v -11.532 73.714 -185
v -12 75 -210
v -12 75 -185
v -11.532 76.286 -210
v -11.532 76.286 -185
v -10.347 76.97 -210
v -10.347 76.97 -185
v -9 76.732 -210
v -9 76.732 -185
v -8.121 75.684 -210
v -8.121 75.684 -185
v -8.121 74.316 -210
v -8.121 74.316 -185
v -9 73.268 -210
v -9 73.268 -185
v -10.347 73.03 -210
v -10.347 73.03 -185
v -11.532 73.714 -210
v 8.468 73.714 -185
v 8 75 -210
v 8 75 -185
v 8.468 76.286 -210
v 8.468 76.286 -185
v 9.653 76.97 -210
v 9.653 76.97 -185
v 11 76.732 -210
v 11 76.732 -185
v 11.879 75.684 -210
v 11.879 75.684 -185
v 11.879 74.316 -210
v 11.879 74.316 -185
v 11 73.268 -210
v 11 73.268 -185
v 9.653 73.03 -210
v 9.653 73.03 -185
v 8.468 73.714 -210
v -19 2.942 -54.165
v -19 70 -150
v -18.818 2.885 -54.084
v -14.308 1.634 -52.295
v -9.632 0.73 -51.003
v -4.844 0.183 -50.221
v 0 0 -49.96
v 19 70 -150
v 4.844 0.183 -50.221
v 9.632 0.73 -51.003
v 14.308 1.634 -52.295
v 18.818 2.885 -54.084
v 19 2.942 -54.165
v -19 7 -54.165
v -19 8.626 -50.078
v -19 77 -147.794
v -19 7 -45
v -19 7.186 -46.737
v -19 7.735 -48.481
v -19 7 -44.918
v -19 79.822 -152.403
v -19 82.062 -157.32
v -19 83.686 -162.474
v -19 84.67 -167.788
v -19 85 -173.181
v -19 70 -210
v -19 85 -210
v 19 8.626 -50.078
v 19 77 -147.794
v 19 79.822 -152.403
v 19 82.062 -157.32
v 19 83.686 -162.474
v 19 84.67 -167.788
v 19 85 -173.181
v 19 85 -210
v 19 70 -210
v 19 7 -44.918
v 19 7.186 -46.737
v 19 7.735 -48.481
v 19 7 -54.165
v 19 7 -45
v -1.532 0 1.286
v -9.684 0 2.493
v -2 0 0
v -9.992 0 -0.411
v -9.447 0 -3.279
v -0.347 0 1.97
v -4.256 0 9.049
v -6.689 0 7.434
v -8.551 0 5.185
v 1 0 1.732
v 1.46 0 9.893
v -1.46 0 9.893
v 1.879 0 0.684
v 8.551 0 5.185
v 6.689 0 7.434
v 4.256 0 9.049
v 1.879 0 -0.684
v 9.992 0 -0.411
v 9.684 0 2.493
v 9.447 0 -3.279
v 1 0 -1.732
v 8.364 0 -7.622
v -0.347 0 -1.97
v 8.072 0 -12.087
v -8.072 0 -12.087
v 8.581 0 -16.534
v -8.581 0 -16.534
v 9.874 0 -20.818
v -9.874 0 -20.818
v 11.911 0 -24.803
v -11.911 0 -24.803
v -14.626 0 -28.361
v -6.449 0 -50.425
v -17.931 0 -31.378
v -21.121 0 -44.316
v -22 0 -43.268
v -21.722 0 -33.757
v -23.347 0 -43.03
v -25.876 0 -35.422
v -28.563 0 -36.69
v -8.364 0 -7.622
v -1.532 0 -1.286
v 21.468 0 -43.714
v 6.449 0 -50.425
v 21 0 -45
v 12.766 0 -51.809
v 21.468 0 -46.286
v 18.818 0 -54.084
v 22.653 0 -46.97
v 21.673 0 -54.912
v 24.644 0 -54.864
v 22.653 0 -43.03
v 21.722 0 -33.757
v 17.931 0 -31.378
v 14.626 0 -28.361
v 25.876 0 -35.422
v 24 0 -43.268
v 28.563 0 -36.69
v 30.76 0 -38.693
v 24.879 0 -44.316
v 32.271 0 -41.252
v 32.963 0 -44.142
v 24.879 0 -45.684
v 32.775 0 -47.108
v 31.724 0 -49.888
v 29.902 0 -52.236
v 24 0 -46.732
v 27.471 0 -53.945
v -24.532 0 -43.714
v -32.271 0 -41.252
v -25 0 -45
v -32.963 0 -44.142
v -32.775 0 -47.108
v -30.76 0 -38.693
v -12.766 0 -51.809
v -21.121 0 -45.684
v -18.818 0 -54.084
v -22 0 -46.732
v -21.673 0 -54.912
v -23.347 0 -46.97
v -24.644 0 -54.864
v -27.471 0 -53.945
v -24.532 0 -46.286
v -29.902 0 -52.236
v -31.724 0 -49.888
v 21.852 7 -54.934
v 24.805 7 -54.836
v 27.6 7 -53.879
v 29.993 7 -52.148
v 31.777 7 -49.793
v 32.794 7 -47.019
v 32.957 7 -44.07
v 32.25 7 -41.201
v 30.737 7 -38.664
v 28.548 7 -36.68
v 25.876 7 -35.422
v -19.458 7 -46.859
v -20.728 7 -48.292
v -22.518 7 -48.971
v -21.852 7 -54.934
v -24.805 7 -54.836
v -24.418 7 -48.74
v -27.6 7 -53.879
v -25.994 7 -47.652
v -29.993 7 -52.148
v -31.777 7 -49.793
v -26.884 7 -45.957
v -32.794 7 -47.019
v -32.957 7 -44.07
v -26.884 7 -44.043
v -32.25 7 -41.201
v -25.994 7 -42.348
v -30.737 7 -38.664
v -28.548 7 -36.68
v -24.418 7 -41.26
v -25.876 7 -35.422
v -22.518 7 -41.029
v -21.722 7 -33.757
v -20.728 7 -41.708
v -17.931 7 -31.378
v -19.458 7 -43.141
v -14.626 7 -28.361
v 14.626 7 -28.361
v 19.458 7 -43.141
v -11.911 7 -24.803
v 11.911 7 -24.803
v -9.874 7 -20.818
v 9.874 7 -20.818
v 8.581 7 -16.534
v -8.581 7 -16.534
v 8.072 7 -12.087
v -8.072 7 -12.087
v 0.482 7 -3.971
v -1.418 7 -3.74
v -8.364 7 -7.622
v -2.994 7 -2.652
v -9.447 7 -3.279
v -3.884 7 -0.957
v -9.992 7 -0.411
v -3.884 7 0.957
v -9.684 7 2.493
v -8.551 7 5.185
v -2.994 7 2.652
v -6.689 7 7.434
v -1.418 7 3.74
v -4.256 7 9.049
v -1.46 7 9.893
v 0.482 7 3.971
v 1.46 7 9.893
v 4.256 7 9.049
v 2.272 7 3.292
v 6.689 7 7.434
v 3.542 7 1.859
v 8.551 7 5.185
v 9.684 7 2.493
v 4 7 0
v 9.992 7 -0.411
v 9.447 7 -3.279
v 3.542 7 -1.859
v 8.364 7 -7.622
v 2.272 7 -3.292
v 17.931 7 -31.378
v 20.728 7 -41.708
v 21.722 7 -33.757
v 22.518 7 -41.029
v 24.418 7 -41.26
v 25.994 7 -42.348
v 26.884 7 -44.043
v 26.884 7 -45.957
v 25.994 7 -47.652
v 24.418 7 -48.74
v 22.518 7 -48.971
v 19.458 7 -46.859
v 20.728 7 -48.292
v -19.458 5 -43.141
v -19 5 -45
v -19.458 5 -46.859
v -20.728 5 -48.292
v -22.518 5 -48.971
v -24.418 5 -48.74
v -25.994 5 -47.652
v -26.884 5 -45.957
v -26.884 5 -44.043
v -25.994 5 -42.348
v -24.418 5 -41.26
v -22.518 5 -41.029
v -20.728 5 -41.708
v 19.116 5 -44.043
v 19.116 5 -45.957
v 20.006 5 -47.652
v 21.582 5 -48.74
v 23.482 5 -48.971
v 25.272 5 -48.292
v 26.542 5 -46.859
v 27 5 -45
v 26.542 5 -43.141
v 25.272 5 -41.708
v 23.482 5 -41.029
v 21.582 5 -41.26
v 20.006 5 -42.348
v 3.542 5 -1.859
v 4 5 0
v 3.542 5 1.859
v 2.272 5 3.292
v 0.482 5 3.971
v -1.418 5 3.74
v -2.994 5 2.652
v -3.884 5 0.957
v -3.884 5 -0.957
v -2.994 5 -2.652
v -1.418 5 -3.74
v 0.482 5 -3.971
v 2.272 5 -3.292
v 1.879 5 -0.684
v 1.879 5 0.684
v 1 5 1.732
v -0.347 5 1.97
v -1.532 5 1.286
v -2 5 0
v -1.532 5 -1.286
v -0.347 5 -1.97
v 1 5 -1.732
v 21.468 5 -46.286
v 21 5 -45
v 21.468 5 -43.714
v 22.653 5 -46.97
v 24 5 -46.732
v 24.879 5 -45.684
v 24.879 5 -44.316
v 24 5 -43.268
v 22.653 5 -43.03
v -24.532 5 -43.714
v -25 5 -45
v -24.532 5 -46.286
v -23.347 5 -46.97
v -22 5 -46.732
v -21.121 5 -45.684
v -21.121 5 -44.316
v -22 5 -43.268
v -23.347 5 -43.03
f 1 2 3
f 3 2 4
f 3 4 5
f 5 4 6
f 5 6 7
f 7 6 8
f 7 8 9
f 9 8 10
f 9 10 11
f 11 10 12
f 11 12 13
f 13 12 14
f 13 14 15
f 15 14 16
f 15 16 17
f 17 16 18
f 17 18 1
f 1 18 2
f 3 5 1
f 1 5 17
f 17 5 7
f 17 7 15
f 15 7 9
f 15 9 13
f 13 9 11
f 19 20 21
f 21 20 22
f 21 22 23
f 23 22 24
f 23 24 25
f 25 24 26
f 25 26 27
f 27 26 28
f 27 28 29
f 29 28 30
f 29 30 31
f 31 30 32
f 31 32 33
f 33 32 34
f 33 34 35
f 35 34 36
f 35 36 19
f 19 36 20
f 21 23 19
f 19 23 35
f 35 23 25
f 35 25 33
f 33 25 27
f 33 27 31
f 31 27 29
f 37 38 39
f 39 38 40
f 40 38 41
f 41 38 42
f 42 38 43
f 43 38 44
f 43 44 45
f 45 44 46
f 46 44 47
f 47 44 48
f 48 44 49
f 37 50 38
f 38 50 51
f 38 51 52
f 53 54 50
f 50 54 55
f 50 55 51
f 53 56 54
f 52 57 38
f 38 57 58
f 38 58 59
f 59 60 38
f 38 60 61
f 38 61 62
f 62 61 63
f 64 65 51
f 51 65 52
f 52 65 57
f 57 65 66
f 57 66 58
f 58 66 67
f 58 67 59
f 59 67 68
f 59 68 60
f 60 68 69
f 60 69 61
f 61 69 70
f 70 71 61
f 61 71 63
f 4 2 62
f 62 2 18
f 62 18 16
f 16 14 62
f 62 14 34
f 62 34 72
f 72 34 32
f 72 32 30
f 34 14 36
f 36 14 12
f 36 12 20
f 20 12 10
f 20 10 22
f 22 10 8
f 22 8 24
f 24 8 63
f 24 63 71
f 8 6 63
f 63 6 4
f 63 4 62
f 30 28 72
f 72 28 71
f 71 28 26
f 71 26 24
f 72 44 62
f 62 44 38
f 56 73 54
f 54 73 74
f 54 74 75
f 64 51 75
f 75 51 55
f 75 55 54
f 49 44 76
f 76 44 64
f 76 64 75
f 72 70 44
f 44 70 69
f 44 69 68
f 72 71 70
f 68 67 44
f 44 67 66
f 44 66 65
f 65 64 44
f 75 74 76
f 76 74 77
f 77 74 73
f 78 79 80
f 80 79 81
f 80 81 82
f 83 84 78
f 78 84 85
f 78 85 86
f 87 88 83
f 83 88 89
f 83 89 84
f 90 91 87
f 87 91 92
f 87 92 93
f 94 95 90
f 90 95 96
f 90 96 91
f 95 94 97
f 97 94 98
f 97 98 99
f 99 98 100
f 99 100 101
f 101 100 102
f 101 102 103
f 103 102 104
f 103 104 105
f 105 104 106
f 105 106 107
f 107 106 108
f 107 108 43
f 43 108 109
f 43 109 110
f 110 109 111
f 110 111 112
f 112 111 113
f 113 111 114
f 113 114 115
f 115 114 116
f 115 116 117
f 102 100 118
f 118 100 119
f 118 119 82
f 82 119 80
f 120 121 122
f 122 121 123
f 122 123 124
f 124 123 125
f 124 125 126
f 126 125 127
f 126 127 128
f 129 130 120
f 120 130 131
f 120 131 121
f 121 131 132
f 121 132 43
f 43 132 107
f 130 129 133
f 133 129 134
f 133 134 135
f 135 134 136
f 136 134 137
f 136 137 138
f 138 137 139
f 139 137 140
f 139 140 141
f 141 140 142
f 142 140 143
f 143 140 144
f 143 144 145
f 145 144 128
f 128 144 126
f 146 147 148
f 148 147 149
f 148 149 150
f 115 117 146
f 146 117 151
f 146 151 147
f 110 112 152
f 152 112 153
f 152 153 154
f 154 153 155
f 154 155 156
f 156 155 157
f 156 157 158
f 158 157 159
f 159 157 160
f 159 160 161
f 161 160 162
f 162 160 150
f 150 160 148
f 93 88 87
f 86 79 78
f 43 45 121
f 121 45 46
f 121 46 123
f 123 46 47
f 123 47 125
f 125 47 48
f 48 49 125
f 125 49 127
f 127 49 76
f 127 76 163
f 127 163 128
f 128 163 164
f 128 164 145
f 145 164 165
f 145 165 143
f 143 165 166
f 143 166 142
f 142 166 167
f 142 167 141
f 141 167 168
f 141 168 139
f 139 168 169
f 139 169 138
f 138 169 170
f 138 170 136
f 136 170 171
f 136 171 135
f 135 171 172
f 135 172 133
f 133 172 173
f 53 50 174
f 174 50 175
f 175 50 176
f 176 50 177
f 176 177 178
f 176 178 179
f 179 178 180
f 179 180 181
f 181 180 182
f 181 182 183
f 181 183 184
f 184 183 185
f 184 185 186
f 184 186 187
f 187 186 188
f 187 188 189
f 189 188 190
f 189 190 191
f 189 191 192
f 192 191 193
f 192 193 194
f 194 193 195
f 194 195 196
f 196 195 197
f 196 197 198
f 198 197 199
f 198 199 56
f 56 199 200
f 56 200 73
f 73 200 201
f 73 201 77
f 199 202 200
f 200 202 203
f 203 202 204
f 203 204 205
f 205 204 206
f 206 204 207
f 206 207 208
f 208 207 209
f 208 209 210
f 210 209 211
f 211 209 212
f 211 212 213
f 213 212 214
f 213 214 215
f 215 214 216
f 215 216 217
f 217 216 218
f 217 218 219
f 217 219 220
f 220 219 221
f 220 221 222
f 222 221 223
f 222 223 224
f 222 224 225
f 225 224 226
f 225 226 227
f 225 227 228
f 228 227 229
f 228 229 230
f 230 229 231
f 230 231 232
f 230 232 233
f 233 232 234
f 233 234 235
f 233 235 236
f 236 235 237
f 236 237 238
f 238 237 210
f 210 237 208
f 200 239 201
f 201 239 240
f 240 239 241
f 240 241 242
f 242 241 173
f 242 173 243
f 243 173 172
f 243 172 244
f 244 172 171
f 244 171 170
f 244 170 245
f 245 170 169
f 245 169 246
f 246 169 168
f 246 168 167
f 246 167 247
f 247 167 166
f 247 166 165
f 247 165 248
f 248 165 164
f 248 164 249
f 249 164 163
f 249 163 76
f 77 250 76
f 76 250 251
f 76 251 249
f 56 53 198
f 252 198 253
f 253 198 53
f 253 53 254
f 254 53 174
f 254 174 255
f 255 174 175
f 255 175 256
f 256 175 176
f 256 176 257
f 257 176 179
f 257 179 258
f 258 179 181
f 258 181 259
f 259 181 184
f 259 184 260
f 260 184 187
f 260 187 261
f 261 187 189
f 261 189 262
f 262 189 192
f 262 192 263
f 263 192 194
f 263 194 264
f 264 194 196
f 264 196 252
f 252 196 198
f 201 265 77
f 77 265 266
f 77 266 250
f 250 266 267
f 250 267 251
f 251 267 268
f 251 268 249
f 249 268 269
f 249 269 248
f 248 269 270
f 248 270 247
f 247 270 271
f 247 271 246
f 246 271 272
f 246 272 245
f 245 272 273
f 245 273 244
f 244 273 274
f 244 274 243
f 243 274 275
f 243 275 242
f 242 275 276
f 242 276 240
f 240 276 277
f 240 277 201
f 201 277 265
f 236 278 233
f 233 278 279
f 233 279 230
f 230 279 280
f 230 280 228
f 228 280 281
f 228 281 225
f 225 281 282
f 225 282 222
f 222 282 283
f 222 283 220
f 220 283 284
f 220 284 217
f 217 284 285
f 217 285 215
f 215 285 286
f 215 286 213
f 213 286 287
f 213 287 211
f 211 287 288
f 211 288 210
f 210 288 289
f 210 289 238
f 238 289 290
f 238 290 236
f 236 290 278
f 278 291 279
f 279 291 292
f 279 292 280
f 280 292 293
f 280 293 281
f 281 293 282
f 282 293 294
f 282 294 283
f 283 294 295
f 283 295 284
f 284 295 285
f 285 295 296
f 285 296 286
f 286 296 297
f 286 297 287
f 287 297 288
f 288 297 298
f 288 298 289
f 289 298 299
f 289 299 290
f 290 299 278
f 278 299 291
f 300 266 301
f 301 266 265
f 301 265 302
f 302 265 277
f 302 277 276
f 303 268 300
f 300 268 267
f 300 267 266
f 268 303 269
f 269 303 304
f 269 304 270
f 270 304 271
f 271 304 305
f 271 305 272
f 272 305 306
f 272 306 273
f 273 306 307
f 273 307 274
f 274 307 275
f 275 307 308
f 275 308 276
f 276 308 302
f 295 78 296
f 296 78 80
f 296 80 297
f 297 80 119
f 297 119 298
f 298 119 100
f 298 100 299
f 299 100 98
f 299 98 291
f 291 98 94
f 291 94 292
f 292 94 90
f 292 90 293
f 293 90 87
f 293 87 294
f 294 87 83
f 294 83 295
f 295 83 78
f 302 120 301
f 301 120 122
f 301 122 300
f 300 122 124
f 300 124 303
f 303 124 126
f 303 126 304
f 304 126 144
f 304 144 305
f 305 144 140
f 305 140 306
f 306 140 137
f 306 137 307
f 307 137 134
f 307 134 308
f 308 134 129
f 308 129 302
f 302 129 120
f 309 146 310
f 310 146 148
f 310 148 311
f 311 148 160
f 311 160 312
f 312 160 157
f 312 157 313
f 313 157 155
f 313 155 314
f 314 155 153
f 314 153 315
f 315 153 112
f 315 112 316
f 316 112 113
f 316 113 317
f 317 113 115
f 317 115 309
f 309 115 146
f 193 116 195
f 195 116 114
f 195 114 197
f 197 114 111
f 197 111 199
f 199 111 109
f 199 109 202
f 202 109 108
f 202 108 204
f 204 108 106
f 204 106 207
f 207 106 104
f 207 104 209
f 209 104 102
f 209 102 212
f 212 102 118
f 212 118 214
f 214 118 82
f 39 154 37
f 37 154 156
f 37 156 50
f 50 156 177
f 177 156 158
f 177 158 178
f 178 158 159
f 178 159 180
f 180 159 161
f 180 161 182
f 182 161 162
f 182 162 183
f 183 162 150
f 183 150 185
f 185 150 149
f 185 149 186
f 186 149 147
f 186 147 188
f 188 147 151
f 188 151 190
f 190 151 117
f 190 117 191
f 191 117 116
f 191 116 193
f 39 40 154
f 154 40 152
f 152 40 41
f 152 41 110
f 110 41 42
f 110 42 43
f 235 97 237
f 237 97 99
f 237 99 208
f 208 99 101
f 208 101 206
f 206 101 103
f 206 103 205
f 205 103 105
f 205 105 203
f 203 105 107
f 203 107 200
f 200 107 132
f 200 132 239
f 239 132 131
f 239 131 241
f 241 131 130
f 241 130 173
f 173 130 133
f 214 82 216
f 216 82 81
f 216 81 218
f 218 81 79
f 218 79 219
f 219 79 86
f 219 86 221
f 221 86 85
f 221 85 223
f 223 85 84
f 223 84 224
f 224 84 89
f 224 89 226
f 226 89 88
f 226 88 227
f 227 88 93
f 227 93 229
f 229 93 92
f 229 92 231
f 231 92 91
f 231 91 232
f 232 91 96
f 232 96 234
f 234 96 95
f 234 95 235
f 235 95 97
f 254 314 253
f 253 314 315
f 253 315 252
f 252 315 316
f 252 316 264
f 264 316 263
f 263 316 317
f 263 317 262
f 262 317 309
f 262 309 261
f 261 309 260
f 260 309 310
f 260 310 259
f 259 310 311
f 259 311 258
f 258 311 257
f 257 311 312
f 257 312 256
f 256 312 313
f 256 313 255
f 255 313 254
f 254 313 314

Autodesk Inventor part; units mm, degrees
ref_plane "YZ Plane" through (0, 0, 0) normal (1, 0, 0) x (0, 1, 0)
ref_plane "XZ Plane" through (0, 0, 0) normal (0, 1, 0) x (-1, 0, 0)
ref_plane "XY Plane" through (0, 0, 0) normal (0, 0, 1) x (1, 0, 0)
sketch "스케치1" plane through (0, 0, 0) normal (0, 1, 0) x (-1, 0, 0)
  circle A0 centre (0, 0) radius 2
  line L0 (0, 0) -> (0, -45)
  line L1 (23, -45) -> (-23, -45)
  circle A1 centre (23, -45) radius 2
  circle A2 centre (-23, -45) radius 2
  circle A3 centre (23, -45) radius 10
  circle A4 centre (-23, -45) radius 10
  circle A5 centre (0, 0) radius 10
  arc A6 (9.447, -3.2795) -> (25.8755, -35.4224) centre (33.0643, -11.4782) ccw
  line L2 (0, -115.952) -> (0, 30.992) projected
  arc A7 (-25.8755, -35.4224) -> (-9.447, -3.2795) centre (-33.0643, -11.4782) ccw
  arc A8 (18.8182, -54.0836) -> (-18.8182, -54.0836) centre (0, -94.96) ccw
  point P0 (-9.447, -3.2795)
  point P1 (-25.8755, -35.4224)
  dimension "d6" = 20
  dimension "d7" = 20
  dimension "d0" = 4
  dimension "d1" = 45
  dimension "d2" = 46
  dimension "d3" = 4
  dimension "d4" = 4
  dimension "d5" = 20
  dimension "d8" = 25
  dimension "d9" = 45
extrude "돌출1" add sketch "스케치1" along normal blind 5 contours A0 L2 A5 L0 | A0 L0 A5 L2 | A5 A6 A3 L1 L0 | L0 L1 A4 A7 A5 | L2 A8 A4 L1 | L1 A3 A8 L2 | A4 | A3
sketch "스케치2" plane through (0, 5, 0) normal (0, 1, 0) x (1, 0, 0)
  arc A0 (-9.447, 3.2795) -> (9.447, 3.2795) centre (0, 0) ccw projected
  arc A1 (25.8755, 35.4224) -> (9.447, 3.2795) centre (33.0643, 11.4782) ccw projected
  arc A2 (25.8755, 35.4224) -> (18.8182, 54.0836) centre (23, 45) ccw projected
  arc A3 (-18.8182, 54.0836) -> (18.8182, 54.0836) centre (0, 94.96) ccw projected
  arc A4 (-18.8182, 54.0836) -> (-25.8755, 35.4224) centre (-23, 45) ccw projected
  arc A5 (-9.447, 3.2795) -> (-25.8755, 35.4224) centre (-33.0643, 11.4782) ccw projected
  circle A6 centre (-23, 45) radius 2 projected
  circle A7 centre (23, 45) radius 2 projected
  circle A8 centre (0, 0) radius 2 projected
  circle A9 centre (-23, 45) radius 4
  circle A10 centre (23, 45) radius 4
  circle A11 centre (0, 0) radius 4
  dimension "d12" = 8
  dimension "d13" = 8
  dimension "d14" = 8
extrude "돌출2" add sketch "스케치2" along normal blind 2 contours A5 A4 A3 A2 A1 A0
sketch "스케치7" plane through (0, 0, 0) normal (1, 0, 0) x (0, 1, 0)
  line L0 (5, -43) -> (5, -47) projected
  line L1 (0, -43) -> (0, -47) projected
  line L2 (7, -41) -> (7, -49) projected
  line L3 (5, -49) -> (5, -41) projected
  line L4 (0, -45) -> (7, -45)
  line L5 (7, -41) -> (7, -49) projected
  line L6 (7, -45) -> (0, -45)
  line L7 (7, -55) -> (7, -35.4224) projected
  line L8 (0, -49.96) -> (0, -54.0836) projected
  line L9 (0, -45) -> (0, -49.96)
  line L10 (0, -49.96) -> (70, -150)
  line L11 (77, -147.7942) -> (8.6259, -50.0779)
  arc A0 (7, -44.9181) -> (8.6259, -50.0779) centre (16, -44.9181) ccw
  line L12 (77, -147.7942) -> (77, -210)
  line L13 (70, -150) -> (70, -210)
  line L14 (77, -210) -> (70, -210)
  line L15 (77, -210) -> (85, -210)
  line L16 (85, -210) -> (85, -173.1814)
  arc A1 (85, -173.1814) -> (77, -147.7942) centre (40.718, -173.1814) ccw
  point P0 (0, 0)
  point P1 (7, -54.0836)
  point P2 (7, -44.9181)
  dimension "d34" = 7
  dimension "d35" = 9
  dimension "d36" = 7
  dimension "d37" = 60
  dimension "d39" = 165
  dimension "d40" = 70
  dimension "d41" = 8
extrude "돌출7" add sketch "스케치7" along normal mid plane 38
sketch "스케치8" plane through (19, 85, -210) normal (0, 0, -1) x (-1, 0, 0)
  line L0 (38, -15) -> (0, -15) projected
  line L1 (19, -15) -> (19, -8)
  line L2 (38, -8) -> (0, -8) projected
  line L3 (9, -10) -> (29, -10)
  circle A0 centre (9, -10) radius 2
  circle A1 centre (29, -10) radius 2
  line L4 (38, 0) -> (0, 0) projected
  point P0 (19, -85)
  point P1 (19, -10)
  dimension "d44" = 20
  dimension "d45" = 4
  dimension "d46" = 4
  dimension "d47" = 10
extrude "돌출8" cut sketch "스케치8" against normal blind 25 contours A0 | A1
properties part number "라이다 고"
